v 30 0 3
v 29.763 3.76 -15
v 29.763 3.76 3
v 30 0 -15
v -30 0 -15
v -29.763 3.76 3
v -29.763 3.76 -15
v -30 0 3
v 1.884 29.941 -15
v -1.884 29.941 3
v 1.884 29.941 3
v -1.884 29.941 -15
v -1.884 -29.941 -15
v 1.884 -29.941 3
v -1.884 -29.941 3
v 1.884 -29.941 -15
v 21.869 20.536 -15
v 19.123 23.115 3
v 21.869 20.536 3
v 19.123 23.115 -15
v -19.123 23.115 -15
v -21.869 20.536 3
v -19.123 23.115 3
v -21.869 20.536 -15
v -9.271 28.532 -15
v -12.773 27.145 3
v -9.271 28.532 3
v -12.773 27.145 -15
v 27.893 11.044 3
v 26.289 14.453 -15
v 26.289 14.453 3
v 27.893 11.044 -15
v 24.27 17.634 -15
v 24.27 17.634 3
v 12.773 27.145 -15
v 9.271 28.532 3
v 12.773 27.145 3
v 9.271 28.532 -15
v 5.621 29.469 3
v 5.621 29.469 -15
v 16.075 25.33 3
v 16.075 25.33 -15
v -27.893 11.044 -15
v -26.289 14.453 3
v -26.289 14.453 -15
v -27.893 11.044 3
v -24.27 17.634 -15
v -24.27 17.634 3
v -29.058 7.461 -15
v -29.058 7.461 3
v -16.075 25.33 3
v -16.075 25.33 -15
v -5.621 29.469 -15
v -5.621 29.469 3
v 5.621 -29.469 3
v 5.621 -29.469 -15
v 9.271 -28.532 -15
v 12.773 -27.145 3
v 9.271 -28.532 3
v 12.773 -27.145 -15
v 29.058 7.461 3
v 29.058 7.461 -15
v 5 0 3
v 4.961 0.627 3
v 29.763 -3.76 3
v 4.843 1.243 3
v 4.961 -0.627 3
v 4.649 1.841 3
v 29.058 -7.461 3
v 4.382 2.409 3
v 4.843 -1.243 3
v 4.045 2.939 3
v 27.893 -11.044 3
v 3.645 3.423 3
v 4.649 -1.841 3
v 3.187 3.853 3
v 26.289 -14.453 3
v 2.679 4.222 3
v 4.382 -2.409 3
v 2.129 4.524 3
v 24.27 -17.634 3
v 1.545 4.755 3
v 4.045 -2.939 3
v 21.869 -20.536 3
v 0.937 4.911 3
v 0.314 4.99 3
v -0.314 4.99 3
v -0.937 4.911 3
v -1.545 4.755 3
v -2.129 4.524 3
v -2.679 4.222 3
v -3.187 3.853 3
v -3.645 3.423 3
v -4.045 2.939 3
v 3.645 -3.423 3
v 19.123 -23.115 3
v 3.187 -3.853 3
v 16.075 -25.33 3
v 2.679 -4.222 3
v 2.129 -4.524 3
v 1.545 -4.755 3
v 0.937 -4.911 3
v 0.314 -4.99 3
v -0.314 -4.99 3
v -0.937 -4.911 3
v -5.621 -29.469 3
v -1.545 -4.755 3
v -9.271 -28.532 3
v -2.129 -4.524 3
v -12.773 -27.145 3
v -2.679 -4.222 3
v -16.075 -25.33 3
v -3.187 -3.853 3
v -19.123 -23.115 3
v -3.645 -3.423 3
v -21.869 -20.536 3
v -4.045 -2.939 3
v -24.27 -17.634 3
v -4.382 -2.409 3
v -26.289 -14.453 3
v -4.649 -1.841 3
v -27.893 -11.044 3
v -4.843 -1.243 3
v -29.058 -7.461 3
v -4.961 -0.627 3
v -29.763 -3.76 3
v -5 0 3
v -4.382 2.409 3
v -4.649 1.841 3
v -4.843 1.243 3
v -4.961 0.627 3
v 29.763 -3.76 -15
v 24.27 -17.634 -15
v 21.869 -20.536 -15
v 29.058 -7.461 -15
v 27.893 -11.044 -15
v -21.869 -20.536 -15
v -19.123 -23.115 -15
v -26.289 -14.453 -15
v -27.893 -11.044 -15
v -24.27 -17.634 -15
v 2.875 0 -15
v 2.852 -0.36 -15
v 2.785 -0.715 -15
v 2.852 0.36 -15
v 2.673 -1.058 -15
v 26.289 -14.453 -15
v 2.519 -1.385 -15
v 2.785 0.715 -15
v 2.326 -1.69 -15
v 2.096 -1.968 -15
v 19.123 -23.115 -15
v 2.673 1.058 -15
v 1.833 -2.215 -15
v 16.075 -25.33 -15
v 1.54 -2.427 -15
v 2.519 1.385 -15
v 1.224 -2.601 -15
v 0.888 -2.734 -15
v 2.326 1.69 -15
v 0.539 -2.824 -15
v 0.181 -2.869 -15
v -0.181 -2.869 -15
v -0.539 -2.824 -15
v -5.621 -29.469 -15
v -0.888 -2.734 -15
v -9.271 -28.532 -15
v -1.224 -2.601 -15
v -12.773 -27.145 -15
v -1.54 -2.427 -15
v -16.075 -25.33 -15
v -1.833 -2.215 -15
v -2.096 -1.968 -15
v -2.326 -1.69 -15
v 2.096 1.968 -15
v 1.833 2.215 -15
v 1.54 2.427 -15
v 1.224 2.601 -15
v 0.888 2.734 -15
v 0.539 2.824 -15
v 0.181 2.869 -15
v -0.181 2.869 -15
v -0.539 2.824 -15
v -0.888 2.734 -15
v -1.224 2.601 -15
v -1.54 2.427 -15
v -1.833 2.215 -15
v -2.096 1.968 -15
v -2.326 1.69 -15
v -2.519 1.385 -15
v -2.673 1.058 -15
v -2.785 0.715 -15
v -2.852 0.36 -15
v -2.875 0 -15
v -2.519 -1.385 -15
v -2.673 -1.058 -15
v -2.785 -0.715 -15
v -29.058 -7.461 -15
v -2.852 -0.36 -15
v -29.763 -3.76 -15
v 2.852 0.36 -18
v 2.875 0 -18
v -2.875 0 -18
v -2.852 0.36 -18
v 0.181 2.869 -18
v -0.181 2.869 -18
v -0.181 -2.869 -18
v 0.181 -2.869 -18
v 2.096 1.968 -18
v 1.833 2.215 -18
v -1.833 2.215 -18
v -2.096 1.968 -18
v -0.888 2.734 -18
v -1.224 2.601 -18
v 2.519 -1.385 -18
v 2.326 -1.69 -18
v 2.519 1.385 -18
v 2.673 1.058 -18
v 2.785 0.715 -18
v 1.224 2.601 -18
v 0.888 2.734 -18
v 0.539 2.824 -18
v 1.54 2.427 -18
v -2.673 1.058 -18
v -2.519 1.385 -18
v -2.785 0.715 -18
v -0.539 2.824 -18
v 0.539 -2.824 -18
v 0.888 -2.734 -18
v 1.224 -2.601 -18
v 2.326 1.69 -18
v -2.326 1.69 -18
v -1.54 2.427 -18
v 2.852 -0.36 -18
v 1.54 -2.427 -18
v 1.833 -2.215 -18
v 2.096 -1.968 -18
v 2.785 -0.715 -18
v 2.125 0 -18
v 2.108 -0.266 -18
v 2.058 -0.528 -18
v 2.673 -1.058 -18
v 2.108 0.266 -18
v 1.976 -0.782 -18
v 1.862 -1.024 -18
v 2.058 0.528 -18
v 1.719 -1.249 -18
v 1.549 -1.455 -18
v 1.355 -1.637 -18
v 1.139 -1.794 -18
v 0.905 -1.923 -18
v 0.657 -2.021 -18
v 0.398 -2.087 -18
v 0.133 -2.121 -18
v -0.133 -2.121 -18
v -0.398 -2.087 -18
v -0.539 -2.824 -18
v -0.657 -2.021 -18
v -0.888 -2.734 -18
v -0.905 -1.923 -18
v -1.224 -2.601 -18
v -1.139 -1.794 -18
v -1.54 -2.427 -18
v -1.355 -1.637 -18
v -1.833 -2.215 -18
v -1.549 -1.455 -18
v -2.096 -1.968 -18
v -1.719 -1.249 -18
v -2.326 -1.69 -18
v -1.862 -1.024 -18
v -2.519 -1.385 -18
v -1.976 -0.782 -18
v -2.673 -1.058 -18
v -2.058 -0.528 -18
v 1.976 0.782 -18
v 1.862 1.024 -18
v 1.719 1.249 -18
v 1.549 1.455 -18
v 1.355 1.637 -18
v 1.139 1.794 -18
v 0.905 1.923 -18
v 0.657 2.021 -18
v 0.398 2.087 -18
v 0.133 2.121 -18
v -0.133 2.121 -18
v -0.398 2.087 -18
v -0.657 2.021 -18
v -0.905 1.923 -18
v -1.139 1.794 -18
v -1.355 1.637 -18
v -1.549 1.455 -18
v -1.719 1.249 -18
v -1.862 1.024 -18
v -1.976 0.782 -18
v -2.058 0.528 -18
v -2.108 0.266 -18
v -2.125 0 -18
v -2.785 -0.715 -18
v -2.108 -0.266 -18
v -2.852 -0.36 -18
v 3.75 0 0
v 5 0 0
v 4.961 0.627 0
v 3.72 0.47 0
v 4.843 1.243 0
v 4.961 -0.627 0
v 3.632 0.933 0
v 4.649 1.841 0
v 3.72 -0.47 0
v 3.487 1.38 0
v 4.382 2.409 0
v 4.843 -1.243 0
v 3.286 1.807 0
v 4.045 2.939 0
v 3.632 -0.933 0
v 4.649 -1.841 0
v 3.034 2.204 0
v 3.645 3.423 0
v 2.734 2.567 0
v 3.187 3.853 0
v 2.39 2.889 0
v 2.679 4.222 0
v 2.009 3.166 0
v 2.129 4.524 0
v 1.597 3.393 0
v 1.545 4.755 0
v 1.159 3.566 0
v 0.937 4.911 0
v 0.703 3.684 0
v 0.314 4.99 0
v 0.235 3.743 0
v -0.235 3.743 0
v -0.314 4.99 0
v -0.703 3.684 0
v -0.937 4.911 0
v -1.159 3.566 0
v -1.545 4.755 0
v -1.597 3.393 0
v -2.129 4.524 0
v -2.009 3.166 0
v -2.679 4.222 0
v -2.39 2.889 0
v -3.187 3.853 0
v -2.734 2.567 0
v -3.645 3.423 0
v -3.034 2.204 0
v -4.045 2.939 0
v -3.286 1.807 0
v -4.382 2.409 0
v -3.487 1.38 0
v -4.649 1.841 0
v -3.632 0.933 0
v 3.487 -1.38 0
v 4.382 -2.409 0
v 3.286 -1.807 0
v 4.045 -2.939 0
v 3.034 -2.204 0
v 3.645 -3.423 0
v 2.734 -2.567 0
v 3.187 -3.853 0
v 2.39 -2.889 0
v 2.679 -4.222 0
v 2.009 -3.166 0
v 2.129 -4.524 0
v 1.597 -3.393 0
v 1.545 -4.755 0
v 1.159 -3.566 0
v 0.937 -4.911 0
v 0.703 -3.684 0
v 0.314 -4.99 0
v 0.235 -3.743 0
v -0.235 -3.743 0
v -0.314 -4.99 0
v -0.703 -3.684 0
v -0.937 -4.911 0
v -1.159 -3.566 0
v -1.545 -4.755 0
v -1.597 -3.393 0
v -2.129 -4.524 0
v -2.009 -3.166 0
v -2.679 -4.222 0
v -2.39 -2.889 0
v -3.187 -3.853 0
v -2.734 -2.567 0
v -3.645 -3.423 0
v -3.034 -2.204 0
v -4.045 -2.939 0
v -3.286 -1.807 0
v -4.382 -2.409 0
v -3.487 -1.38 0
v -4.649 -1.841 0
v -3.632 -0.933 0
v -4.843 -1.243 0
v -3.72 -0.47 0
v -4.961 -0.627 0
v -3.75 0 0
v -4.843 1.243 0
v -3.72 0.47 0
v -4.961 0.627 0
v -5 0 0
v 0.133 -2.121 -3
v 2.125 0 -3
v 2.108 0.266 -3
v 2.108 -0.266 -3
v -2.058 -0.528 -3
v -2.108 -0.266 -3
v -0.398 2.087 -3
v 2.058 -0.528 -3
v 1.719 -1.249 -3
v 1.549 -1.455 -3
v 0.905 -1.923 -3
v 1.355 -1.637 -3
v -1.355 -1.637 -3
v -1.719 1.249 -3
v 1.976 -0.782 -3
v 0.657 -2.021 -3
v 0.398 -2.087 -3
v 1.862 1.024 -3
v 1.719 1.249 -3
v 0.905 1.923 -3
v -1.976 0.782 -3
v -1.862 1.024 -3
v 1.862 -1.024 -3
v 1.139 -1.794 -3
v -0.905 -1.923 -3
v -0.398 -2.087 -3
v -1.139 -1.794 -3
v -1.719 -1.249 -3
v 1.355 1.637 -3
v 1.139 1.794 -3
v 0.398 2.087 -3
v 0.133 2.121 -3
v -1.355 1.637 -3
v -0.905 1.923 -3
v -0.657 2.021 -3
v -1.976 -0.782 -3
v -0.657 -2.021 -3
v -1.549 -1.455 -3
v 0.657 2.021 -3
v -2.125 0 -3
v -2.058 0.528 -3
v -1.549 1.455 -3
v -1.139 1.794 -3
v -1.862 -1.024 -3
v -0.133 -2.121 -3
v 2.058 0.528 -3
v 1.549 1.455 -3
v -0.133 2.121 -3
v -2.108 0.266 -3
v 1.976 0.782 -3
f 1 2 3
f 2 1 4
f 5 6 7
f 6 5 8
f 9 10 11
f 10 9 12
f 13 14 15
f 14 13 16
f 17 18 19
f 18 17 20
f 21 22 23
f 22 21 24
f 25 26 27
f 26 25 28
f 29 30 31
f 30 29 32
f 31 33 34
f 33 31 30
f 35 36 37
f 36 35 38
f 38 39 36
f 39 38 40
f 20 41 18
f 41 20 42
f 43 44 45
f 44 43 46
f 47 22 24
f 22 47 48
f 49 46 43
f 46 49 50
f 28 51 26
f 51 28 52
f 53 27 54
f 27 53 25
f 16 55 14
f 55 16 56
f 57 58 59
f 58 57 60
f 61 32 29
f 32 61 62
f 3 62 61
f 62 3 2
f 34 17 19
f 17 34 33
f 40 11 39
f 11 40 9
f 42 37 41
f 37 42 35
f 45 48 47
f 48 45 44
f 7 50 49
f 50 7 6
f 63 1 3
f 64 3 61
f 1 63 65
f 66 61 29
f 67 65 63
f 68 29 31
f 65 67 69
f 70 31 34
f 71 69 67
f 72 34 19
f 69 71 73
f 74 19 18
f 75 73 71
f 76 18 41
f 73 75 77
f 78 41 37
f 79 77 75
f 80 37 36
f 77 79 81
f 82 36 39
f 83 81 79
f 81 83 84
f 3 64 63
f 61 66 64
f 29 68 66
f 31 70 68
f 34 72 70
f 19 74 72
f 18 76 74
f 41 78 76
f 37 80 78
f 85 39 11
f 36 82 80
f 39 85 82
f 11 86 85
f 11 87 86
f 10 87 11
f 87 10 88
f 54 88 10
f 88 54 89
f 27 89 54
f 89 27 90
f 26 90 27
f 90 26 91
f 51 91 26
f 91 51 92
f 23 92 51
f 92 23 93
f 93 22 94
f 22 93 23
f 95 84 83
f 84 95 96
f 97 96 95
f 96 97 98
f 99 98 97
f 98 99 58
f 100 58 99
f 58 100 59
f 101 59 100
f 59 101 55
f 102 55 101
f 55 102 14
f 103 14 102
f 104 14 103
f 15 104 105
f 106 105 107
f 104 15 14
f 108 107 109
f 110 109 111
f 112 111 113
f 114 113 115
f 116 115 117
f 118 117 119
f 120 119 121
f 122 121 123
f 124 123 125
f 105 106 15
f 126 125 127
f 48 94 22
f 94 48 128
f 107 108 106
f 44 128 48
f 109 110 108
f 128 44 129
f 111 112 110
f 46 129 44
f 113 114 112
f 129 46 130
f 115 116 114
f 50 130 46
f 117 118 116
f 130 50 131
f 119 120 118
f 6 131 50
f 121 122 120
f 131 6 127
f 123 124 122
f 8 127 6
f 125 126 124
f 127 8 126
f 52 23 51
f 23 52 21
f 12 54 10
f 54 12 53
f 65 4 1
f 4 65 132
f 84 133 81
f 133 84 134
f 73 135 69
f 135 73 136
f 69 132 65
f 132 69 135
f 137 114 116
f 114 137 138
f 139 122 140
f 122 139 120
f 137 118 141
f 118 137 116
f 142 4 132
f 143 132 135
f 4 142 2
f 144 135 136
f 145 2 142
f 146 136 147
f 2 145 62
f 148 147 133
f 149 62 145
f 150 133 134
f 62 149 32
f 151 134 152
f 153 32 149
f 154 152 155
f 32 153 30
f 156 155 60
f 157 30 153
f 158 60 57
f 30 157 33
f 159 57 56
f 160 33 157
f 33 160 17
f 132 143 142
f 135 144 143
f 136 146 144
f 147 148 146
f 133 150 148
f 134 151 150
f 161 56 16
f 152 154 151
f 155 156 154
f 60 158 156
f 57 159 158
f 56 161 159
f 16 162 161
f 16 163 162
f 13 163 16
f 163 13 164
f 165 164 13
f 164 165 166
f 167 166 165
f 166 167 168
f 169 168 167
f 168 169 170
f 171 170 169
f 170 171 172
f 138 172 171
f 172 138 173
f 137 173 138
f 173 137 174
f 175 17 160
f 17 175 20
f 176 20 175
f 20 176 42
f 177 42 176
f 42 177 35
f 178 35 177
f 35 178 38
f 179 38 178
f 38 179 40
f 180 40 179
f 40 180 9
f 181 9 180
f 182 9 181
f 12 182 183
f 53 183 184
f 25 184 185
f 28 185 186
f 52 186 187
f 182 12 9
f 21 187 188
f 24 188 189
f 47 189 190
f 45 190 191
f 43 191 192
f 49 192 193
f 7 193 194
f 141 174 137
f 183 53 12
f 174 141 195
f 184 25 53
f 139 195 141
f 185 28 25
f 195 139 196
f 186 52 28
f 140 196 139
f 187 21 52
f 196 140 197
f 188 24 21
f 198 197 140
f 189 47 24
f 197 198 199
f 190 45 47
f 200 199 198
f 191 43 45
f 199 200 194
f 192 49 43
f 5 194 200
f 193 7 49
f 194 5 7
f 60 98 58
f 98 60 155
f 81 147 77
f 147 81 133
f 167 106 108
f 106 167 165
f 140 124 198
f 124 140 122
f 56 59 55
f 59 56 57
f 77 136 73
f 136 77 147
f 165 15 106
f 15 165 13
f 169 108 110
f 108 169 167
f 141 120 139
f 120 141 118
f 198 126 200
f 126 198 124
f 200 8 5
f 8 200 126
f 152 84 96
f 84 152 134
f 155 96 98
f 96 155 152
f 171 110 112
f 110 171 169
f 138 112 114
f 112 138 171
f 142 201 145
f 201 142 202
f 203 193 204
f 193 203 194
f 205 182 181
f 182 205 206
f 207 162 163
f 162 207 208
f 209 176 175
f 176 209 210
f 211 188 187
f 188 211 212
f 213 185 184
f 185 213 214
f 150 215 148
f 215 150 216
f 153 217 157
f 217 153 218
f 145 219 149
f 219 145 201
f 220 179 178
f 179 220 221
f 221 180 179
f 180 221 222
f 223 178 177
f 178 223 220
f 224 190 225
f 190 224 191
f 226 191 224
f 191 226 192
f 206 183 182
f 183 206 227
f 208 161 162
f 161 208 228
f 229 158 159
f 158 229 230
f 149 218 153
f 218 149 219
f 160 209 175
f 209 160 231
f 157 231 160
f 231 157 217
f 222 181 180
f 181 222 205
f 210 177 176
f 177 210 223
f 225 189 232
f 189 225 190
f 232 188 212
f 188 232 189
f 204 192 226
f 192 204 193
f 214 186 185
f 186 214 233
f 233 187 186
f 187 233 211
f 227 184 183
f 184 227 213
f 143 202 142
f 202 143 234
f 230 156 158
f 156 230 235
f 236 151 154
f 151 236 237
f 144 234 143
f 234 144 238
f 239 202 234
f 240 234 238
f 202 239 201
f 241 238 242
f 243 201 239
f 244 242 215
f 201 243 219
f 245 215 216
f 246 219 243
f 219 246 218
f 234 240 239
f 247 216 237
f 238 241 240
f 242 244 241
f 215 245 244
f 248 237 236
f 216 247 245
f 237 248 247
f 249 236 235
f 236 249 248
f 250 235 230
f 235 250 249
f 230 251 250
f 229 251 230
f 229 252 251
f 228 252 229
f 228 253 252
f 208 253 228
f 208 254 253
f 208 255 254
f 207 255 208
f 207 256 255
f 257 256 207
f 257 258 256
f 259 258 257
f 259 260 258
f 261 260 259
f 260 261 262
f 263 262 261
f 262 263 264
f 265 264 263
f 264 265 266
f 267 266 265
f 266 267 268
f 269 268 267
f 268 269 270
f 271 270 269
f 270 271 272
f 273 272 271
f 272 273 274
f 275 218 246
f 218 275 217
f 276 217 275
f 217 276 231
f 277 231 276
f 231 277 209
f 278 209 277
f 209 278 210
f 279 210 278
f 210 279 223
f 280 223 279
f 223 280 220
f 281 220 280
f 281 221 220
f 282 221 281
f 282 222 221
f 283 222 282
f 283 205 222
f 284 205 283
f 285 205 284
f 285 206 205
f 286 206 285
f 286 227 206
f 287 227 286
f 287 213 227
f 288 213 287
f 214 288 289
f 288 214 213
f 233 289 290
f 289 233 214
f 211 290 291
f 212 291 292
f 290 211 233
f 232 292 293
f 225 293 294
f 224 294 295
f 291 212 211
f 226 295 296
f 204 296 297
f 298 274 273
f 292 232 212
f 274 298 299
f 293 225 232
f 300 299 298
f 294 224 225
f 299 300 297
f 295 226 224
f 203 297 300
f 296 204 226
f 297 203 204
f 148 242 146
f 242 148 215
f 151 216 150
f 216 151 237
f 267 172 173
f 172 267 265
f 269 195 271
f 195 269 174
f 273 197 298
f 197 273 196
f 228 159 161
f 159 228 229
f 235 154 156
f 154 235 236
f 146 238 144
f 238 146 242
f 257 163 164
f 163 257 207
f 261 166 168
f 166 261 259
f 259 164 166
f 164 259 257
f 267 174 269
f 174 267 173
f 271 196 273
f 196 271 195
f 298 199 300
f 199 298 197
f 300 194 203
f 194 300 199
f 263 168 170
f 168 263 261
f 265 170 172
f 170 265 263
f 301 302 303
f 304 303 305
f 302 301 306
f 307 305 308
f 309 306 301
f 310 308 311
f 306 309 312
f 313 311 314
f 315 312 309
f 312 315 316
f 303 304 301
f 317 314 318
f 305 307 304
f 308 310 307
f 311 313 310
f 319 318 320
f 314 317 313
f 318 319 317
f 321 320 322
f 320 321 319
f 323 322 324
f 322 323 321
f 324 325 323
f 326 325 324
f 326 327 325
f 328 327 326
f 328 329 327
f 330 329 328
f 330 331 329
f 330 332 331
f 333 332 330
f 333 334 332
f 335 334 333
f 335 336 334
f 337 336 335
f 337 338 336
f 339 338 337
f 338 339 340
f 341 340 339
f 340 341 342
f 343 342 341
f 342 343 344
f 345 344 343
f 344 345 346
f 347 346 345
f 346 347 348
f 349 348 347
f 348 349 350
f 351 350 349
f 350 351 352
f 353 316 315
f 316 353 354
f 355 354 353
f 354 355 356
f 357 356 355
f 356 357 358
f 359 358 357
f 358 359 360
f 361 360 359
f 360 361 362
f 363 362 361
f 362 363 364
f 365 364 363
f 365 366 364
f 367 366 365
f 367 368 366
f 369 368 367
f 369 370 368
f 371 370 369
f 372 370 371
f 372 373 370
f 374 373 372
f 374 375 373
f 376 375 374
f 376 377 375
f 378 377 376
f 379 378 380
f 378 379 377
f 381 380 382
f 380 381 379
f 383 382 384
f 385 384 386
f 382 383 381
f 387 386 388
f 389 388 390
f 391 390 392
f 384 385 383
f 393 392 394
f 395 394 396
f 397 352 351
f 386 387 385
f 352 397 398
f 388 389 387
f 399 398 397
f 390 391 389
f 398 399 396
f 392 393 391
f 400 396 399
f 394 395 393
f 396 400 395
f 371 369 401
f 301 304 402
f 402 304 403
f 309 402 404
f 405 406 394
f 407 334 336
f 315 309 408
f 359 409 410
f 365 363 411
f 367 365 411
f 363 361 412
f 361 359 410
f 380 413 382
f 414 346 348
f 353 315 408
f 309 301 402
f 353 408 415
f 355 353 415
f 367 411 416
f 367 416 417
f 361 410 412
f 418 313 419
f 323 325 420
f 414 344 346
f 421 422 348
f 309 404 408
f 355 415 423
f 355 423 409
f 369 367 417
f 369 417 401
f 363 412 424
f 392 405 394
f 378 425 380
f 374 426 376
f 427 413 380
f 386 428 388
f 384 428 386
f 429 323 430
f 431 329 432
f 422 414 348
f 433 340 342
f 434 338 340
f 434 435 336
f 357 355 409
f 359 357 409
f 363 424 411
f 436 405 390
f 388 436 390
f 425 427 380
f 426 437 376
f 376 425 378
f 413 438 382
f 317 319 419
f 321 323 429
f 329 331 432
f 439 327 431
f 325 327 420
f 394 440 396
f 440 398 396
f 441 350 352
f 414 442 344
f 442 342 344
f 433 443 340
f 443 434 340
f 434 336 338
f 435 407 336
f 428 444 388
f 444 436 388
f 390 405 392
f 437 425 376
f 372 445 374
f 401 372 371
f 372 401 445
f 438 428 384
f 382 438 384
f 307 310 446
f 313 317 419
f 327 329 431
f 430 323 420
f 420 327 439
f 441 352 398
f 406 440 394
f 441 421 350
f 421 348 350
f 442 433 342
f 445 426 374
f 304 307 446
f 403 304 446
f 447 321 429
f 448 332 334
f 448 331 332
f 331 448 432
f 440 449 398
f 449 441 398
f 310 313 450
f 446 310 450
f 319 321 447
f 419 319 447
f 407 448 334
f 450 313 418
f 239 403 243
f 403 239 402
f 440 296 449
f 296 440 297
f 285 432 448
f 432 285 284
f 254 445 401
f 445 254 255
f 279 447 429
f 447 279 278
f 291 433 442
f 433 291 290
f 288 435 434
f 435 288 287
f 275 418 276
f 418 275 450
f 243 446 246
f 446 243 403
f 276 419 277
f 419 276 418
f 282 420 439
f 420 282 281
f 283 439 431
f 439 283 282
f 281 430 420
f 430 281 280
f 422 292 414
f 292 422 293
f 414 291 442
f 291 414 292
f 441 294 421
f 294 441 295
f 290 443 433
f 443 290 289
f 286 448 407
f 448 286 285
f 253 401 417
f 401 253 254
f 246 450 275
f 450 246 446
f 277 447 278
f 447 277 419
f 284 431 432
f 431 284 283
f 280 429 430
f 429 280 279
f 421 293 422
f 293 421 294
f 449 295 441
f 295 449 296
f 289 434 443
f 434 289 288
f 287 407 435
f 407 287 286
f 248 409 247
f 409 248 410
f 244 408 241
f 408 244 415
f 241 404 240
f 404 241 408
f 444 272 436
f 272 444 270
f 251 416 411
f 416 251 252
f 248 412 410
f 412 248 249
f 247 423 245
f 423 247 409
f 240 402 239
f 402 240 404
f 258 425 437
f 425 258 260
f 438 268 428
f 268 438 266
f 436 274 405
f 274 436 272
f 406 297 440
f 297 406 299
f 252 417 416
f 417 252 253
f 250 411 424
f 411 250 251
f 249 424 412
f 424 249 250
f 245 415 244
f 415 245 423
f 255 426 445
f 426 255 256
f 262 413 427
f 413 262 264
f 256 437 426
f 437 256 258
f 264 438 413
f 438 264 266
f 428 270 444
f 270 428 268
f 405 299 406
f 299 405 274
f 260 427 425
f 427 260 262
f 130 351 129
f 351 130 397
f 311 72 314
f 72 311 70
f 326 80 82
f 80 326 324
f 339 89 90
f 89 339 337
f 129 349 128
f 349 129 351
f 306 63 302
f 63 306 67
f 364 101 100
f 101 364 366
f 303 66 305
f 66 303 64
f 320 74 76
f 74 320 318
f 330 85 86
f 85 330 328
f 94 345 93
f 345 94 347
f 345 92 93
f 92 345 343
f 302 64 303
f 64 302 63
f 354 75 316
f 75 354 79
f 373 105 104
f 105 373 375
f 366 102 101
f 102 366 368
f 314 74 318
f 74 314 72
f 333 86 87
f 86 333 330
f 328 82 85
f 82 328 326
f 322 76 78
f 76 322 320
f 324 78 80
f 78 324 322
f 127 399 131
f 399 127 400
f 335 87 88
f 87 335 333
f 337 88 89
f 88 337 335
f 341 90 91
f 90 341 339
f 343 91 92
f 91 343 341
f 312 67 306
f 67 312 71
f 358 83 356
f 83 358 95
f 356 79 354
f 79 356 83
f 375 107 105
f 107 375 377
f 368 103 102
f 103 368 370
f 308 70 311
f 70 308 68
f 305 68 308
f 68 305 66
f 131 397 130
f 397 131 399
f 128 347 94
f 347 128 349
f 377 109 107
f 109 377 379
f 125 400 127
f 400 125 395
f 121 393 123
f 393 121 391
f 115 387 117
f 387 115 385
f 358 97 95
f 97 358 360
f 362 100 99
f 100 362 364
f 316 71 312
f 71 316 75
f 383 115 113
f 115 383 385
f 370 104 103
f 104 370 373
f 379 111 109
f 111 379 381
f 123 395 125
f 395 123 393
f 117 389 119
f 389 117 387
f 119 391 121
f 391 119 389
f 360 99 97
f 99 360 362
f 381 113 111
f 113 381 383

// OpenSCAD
$fn = 50;

difference() {
	union() {
		translate(v = [0, 0, -15.0]) {
			cylinder(h = 18, r = 30.0);
		}
		#translate(v = [0, 0, -18.0]) {
			cylinder(h = 18, r = 2.875);
		}
	}
	union() {
		translate(v = [0, 0, 0]) {
			rotate(a = [0, 0, 0]) {
				difference() {
					union() {
						translate(v = [0, 0, -18.0]) {
							cylinder(h = 18, r = 2.0);
						}
						translate(v = [0, 0, -3]) {
							cylinder(h = 3, r1 = 2.125, r2 = 3.75);
						}
						translate(v = [0, 0, -18.0]) {
							cylinder(h = 18, r = 2.125);
						}
						translate(v = [0, 0, -18.0]) {
							cylinder(h = 18, r = 2.0);
						}
					}
					union();
				}
			}
		}
		#cylinder(h = 3, r = 5.0);
	}
}
